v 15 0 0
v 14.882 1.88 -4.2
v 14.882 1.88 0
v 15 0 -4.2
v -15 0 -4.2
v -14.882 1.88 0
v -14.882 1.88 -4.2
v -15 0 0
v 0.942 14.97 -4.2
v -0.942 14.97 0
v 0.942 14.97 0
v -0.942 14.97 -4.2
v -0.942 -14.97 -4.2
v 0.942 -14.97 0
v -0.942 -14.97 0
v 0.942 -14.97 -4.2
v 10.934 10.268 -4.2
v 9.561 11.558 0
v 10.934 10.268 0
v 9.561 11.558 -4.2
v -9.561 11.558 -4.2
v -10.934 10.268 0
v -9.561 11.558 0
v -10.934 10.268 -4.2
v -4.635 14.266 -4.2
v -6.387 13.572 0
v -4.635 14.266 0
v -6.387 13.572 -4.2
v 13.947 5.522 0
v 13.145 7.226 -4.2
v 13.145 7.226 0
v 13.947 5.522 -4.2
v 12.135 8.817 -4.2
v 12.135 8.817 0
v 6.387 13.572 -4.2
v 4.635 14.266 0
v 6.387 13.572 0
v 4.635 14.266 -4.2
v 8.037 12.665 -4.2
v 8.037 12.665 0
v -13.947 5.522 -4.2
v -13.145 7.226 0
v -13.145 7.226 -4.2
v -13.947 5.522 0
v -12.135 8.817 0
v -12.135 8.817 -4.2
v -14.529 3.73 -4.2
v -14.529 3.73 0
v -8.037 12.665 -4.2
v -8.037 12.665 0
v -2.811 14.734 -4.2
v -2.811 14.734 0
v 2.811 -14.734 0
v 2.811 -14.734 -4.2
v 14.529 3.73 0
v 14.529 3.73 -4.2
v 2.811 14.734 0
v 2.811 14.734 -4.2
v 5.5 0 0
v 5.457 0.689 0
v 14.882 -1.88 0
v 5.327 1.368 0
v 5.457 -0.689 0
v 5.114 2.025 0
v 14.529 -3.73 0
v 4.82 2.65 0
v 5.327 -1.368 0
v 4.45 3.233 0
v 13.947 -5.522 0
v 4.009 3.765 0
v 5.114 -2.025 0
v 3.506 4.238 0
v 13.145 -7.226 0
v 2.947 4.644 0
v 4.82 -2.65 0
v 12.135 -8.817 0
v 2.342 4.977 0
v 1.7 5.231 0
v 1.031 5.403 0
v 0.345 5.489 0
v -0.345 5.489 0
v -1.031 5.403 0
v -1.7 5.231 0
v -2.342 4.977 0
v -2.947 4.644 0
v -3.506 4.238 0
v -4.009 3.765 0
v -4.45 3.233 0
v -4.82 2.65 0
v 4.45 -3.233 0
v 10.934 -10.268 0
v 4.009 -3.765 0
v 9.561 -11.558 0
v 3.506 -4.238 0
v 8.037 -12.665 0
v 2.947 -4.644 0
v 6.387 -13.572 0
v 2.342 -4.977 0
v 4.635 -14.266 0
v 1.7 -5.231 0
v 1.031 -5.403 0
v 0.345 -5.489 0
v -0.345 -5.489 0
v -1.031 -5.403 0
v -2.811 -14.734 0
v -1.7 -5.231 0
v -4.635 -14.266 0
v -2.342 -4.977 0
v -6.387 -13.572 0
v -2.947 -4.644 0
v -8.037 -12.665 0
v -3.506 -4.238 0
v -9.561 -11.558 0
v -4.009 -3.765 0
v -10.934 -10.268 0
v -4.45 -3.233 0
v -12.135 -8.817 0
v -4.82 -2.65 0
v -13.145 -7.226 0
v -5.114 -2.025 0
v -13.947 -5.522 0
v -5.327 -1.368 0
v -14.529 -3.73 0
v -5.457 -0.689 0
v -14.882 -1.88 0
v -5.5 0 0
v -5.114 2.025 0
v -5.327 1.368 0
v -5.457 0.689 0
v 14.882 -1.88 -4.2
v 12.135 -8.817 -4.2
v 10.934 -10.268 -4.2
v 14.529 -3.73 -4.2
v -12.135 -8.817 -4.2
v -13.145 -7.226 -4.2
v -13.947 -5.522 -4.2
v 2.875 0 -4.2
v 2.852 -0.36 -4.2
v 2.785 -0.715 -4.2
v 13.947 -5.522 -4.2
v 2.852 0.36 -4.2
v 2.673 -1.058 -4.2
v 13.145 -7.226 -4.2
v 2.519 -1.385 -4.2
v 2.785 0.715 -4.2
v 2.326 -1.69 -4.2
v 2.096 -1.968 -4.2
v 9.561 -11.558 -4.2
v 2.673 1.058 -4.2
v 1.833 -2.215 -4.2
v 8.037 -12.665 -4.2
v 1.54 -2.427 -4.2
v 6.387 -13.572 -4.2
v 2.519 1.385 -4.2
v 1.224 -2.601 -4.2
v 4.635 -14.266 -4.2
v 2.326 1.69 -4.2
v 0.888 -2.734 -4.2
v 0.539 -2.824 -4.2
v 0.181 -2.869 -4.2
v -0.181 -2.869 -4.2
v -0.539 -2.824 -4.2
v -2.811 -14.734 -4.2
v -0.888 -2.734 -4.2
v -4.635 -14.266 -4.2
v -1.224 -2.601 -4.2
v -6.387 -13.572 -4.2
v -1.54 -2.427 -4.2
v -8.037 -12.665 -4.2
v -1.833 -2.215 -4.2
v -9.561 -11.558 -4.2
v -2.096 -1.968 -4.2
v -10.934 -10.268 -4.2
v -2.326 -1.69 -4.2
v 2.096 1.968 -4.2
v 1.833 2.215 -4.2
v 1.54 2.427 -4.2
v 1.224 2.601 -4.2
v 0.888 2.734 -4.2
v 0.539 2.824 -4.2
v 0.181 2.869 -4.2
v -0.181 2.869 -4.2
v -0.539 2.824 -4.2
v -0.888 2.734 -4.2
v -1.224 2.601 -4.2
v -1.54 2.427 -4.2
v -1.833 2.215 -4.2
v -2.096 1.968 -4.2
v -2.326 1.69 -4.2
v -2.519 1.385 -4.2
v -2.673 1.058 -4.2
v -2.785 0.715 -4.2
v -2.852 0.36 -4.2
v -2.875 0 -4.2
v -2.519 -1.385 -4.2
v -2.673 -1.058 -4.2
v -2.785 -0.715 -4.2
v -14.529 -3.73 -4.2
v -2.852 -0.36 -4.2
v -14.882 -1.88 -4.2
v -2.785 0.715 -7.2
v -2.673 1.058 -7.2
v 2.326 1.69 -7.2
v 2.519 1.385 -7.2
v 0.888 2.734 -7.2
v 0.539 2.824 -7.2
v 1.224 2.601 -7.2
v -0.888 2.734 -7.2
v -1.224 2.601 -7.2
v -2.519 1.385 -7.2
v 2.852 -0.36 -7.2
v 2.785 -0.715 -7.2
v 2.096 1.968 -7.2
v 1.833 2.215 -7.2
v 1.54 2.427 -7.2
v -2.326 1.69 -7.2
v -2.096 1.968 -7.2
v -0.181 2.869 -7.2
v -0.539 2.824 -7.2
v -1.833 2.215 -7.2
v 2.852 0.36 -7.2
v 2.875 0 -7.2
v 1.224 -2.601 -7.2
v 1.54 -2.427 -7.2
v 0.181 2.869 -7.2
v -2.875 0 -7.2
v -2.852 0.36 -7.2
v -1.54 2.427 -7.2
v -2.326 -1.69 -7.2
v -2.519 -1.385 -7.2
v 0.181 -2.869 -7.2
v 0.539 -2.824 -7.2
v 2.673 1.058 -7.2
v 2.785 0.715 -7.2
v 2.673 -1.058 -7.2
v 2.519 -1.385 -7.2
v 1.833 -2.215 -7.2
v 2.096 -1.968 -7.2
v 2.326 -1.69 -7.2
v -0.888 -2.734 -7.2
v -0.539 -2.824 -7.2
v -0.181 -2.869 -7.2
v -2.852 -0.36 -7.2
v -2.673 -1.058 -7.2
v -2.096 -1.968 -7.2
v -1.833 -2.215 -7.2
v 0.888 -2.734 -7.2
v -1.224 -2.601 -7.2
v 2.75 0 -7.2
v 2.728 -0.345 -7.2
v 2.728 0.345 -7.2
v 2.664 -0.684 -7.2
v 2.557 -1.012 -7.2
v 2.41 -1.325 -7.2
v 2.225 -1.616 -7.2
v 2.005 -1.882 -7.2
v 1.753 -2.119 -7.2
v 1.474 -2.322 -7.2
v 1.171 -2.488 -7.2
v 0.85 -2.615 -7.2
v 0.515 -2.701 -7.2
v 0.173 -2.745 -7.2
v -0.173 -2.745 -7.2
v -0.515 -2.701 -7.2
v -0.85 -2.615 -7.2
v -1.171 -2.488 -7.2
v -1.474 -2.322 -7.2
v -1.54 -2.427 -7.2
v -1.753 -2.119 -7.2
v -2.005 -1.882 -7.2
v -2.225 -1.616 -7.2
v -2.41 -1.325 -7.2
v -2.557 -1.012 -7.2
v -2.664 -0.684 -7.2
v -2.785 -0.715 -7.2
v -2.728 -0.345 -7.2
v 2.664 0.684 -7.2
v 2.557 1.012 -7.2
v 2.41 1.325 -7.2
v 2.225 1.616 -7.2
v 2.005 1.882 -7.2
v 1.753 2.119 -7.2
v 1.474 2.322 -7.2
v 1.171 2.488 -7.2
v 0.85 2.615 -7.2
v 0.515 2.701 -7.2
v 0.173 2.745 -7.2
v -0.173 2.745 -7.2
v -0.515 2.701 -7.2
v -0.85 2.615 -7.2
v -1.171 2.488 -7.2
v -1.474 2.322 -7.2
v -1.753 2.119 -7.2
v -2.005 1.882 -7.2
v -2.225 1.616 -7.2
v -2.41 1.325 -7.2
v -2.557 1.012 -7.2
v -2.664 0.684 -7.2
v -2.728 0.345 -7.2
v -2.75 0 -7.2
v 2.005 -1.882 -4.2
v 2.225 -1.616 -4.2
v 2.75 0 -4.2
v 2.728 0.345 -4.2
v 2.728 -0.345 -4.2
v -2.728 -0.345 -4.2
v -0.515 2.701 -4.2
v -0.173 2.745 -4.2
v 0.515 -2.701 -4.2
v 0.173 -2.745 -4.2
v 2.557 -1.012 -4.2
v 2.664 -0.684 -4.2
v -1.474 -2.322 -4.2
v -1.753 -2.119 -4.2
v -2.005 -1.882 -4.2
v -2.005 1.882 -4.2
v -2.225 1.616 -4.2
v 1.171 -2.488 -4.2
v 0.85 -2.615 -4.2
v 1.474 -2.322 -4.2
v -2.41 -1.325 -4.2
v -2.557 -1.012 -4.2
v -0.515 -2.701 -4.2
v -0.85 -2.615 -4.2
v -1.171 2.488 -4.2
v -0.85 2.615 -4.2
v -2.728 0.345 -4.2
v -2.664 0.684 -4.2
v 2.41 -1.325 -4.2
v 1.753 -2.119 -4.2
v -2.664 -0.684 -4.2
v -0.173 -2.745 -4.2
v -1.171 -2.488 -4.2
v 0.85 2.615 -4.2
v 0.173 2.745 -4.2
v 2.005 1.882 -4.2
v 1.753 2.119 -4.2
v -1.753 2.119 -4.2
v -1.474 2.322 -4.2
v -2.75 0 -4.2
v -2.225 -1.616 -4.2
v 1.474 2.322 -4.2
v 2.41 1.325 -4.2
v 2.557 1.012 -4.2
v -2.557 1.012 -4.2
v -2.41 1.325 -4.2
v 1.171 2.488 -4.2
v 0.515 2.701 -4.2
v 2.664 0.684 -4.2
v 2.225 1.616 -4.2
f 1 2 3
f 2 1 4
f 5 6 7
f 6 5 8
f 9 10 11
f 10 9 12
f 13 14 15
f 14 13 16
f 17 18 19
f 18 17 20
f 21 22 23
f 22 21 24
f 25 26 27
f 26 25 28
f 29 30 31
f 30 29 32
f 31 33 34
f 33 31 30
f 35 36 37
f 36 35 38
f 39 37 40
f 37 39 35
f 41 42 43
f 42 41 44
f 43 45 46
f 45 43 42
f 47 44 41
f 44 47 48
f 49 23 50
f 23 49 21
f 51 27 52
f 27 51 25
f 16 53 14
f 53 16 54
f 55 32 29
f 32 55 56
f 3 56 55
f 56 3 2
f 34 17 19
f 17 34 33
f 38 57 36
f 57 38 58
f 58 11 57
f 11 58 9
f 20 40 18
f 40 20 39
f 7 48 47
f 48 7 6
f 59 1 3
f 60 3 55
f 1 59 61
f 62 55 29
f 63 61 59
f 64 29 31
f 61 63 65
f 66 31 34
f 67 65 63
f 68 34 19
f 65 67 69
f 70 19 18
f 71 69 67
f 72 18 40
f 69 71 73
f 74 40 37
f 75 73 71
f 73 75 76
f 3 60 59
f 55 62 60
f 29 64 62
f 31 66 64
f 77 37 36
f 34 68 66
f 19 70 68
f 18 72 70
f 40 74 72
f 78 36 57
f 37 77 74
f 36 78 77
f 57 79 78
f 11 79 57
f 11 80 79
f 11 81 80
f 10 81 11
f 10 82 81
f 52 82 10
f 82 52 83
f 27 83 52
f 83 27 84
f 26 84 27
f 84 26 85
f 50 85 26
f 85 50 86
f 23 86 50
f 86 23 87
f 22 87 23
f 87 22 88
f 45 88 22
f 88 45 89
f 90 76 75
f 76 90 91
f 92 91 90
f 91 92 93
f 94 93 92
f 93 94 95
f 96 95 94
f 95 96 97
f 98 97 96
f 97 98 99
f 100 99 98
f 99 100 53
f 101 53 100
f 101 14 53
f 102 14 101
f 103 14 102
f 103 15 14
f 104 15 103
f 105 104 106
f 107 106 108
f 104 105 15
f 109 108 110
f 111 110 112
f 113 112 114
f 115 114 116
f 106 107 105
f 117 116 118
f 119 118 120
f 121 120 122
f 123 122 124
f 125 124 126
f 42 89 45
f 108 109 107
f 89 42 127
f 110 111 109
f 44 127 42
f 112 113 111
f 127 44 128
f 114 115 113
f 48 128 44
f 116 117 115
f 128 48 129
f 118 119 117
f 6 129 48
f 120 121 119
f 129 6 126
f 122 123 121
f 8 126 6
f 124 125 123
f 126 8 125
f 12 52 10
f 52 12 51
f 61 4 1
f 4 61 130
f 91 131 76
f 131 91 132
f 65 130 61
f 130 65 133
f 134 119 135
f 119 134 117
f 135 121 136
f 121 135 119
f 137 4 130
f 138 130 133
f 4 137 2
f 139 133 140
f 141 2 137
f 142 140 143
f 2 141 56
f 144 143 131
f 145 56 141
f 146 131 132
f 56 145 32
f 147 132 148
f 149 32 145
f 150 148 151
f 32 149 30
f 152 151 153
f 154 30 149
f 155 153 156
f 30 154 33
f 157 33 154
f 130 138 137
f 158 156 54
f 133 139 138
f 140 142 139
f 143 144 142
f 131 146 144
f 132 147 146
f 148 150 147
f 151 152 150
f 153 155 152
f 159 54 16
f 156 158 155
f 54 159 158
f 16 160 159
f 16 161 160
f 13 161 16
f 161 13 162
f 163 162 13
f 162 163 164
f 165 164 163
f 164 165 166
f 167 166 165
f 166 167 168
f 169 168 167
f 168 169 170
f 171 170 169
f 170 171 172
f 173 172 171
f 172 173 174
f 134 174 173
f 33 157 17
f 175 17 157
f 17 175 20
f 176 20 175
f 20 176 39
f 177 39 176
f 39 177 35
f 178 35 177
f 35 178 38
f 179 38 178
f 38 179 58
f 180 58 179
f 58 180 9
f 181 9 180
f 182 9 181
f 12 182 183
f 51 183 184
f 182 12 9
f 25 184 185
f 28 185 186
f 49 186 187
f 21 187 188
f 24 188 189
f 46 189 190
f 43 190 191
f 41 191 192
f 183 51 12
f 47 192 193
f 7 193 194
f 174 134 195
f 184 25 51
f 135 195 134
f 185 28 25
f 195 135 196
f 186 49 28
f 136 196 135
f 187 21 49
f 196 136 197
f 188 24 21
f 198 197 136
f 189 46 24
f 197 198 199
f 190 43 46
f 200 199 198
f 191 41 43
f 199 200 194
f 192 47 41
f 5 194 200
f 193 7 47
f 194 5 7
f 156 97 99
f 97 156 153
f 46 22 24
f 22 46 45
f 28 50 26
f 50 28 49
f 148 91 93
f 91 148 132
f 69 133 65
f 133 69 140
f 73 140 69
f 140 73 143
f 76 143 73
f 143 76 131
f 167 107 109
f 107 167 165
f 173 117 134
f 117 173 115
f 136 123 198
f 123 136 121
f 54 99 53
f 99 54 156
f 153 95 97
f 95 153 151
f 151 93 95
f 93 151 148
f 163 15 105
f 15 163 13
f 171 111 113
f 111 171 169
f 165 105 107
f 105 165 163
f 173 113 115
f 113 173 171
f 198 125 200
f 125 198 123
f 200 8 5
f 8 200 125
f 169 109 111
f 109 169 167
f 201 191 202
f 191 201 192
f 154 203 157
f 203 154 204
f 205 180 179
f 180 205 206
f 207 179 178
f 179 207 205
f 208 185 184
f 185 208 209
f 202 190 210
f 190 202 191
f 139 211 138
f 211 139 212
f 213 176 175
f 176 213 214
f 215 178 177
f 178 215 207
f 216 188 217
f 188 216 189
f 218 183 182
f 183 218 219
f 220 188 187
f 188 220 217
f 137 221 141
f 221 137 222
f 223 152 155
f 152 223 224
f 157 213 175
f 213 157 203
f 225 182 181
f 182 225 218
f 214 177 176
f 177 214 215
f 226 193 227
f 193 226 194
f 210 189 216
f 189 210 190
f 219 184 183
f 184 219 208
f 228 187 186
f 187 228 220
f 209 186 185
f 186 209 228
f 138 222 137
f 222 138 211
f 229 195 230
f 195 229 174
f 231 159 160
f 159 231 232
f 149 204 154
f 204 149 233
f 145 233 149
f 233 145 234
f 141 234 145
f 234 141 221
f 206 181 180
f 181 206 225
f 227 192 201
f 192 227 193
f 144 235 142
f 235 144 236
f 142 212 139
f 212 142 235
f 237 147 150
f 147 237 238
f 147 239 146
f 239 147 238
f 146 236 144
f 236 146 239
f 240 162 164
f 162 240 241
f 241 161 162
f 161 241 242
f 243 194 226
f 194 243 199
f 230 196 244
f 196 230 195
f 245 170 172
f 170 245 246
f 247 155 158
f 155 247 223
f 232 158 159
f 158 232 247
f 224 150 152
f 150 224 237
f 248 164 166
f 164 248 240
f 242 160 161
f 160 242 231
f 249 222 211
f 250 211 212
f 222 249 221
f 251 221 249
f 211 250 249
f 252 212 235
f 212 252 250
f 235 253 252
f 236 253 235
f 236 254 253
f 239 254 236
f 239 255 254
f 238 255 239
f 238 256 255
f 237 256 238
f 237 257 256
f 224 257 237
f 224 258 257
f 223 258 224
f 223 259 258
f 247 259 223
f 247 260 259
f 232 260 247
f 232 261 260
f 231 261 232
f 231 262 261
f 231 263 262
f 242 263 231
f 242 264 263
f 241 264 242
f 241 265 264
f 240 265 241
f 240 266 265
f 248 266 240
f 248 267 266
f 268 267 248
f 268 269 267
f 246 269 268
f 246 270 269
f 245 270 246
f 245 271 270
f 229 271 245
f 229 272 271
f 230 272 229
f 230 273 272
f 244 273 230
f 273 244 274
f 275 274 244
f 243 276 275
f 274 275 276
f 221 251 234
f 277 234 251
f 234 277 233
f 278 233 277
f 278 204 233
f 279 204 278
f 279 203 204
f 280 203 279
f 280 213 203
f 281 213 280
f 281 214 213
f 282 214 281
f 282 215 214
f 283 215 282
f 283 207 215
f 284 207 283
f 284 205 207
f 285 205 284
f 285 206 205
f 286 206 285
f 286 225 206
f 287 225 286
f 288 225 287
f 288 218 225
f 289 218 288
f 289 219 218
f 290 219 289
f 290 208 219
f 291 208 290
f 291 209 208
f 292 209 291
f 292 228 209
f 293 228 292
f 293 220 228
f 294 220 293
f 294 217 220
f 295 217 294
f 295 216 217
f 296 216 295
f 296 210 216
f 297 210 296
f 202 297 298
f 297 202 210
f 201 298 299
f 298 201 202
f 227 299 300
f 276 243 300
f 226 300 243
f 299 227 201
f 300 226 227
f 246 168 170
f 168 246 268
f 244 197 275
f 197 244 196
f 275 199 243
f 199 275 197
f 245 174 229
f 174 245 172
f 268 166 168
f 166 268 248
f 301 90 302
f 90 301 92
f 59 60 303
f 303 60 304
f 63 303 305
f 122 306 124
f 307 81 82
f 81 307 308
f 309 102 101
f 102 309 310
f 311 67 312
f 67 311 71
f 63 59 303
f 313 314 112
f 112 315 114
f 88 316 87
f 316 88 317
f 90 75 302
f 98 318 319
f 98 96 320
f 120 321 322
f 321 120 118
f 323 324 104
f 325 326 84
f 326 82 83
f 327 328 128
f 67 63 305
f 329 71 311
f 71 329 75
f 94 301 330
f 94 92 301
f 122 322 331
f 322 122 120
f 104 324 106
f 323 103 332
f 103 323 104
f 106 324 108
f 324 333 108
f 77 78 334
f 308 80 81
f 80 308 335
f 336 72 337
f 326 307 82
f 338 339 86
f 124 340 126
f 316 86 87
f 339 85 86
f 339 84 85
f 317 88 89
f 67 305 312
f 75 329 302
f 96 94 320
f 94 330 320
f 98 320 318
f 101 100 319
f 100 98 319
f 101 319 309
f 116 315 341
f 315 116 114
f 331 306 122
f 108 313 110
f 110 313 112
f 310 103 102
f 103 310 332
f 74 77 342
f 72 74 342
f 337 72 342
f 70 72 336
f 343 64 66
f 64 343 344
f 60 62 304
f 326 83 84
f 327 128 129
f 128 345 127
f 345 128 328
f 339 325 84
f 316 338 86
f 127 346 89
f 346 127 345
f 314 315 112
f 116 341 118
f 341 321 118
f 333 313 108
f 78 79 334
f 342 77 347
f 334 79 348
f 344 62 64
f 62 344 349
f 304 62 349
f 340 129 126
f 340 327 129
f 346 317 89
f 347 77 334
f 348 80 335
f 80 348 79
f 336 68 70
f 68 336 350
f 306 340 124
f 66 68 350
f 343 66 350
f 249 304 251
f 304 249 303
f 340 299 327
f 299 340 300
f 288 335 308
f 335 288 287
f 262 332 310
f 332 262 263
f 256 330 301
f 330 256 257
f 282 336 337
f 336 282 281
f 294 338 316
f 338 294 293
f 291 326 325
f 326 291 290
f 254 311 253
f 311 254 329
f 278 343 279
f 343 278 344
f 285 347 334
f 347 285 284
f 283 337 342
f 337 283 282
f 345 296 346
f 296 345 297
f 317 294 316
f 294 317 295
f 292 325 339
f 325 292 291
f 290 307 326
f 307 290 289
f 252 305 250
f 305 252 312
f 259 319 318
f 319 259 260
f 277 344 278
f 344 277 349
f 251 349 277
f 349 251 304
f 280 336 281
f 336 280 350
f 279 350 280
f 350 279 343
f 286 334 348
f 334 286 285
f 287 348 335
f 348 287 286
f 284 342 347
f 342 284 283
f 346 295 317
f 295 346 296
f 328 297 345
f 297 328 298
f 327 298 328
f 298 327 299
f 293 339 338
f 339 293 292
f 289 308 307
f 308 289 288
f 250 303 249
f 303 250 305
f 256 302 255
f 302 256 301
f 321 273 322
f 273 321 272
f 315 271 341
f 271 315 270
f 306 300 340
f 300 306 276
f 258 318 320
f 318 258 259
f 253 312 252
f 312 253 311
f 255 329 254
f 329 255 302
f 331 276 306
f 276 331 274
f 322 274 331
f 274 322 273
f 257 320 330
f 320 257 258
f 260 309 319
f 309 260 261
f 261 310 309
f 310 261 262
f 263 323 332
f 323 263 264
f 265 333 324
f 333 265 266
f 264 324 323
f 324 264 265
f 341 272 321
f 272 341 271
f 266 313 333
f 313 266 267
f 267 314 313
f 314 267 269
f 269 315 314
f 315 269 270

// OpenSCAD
$fn = 50;


difference() {
	union() {
		translate(v = [0, 0, -4.2000000000]) {
			cylinder(h = 4.2000000000, r = 15.0000000000);
		}
		#translate(v = [0, 0, -7.2000000000]) {
			cylinder(h = 7.2000000000, r = 2.8750000000);
		}
	}
	union() {
		translate(v = [0, 0, 0]) {
			rotate(a = [0, 0, 0]) {
				difference() {
					union() {
						translate(v = [0, 0, -7.2000000000]) {
							cylinder(h = 7.2000000000, r = 2.2500000000);
						}
						translate(v = [0, 0, -4.2000000000]) {
							cylinder(h = 4.2000000000, r1 = 2.7500000000, r2 = 5.5000000000);
						}
						translate(v = [0, 0, -7.2000000000]) {
							cylinder(h = 7.2000000000, r = 2.7500000000);
						}
						translate(v = [0, 0, -7.2000000000]) {
							cylinder(h = 7.2000000000, r = 2.2500000000);
						}
					}
					union();
				}
			}
		}
	}
}
